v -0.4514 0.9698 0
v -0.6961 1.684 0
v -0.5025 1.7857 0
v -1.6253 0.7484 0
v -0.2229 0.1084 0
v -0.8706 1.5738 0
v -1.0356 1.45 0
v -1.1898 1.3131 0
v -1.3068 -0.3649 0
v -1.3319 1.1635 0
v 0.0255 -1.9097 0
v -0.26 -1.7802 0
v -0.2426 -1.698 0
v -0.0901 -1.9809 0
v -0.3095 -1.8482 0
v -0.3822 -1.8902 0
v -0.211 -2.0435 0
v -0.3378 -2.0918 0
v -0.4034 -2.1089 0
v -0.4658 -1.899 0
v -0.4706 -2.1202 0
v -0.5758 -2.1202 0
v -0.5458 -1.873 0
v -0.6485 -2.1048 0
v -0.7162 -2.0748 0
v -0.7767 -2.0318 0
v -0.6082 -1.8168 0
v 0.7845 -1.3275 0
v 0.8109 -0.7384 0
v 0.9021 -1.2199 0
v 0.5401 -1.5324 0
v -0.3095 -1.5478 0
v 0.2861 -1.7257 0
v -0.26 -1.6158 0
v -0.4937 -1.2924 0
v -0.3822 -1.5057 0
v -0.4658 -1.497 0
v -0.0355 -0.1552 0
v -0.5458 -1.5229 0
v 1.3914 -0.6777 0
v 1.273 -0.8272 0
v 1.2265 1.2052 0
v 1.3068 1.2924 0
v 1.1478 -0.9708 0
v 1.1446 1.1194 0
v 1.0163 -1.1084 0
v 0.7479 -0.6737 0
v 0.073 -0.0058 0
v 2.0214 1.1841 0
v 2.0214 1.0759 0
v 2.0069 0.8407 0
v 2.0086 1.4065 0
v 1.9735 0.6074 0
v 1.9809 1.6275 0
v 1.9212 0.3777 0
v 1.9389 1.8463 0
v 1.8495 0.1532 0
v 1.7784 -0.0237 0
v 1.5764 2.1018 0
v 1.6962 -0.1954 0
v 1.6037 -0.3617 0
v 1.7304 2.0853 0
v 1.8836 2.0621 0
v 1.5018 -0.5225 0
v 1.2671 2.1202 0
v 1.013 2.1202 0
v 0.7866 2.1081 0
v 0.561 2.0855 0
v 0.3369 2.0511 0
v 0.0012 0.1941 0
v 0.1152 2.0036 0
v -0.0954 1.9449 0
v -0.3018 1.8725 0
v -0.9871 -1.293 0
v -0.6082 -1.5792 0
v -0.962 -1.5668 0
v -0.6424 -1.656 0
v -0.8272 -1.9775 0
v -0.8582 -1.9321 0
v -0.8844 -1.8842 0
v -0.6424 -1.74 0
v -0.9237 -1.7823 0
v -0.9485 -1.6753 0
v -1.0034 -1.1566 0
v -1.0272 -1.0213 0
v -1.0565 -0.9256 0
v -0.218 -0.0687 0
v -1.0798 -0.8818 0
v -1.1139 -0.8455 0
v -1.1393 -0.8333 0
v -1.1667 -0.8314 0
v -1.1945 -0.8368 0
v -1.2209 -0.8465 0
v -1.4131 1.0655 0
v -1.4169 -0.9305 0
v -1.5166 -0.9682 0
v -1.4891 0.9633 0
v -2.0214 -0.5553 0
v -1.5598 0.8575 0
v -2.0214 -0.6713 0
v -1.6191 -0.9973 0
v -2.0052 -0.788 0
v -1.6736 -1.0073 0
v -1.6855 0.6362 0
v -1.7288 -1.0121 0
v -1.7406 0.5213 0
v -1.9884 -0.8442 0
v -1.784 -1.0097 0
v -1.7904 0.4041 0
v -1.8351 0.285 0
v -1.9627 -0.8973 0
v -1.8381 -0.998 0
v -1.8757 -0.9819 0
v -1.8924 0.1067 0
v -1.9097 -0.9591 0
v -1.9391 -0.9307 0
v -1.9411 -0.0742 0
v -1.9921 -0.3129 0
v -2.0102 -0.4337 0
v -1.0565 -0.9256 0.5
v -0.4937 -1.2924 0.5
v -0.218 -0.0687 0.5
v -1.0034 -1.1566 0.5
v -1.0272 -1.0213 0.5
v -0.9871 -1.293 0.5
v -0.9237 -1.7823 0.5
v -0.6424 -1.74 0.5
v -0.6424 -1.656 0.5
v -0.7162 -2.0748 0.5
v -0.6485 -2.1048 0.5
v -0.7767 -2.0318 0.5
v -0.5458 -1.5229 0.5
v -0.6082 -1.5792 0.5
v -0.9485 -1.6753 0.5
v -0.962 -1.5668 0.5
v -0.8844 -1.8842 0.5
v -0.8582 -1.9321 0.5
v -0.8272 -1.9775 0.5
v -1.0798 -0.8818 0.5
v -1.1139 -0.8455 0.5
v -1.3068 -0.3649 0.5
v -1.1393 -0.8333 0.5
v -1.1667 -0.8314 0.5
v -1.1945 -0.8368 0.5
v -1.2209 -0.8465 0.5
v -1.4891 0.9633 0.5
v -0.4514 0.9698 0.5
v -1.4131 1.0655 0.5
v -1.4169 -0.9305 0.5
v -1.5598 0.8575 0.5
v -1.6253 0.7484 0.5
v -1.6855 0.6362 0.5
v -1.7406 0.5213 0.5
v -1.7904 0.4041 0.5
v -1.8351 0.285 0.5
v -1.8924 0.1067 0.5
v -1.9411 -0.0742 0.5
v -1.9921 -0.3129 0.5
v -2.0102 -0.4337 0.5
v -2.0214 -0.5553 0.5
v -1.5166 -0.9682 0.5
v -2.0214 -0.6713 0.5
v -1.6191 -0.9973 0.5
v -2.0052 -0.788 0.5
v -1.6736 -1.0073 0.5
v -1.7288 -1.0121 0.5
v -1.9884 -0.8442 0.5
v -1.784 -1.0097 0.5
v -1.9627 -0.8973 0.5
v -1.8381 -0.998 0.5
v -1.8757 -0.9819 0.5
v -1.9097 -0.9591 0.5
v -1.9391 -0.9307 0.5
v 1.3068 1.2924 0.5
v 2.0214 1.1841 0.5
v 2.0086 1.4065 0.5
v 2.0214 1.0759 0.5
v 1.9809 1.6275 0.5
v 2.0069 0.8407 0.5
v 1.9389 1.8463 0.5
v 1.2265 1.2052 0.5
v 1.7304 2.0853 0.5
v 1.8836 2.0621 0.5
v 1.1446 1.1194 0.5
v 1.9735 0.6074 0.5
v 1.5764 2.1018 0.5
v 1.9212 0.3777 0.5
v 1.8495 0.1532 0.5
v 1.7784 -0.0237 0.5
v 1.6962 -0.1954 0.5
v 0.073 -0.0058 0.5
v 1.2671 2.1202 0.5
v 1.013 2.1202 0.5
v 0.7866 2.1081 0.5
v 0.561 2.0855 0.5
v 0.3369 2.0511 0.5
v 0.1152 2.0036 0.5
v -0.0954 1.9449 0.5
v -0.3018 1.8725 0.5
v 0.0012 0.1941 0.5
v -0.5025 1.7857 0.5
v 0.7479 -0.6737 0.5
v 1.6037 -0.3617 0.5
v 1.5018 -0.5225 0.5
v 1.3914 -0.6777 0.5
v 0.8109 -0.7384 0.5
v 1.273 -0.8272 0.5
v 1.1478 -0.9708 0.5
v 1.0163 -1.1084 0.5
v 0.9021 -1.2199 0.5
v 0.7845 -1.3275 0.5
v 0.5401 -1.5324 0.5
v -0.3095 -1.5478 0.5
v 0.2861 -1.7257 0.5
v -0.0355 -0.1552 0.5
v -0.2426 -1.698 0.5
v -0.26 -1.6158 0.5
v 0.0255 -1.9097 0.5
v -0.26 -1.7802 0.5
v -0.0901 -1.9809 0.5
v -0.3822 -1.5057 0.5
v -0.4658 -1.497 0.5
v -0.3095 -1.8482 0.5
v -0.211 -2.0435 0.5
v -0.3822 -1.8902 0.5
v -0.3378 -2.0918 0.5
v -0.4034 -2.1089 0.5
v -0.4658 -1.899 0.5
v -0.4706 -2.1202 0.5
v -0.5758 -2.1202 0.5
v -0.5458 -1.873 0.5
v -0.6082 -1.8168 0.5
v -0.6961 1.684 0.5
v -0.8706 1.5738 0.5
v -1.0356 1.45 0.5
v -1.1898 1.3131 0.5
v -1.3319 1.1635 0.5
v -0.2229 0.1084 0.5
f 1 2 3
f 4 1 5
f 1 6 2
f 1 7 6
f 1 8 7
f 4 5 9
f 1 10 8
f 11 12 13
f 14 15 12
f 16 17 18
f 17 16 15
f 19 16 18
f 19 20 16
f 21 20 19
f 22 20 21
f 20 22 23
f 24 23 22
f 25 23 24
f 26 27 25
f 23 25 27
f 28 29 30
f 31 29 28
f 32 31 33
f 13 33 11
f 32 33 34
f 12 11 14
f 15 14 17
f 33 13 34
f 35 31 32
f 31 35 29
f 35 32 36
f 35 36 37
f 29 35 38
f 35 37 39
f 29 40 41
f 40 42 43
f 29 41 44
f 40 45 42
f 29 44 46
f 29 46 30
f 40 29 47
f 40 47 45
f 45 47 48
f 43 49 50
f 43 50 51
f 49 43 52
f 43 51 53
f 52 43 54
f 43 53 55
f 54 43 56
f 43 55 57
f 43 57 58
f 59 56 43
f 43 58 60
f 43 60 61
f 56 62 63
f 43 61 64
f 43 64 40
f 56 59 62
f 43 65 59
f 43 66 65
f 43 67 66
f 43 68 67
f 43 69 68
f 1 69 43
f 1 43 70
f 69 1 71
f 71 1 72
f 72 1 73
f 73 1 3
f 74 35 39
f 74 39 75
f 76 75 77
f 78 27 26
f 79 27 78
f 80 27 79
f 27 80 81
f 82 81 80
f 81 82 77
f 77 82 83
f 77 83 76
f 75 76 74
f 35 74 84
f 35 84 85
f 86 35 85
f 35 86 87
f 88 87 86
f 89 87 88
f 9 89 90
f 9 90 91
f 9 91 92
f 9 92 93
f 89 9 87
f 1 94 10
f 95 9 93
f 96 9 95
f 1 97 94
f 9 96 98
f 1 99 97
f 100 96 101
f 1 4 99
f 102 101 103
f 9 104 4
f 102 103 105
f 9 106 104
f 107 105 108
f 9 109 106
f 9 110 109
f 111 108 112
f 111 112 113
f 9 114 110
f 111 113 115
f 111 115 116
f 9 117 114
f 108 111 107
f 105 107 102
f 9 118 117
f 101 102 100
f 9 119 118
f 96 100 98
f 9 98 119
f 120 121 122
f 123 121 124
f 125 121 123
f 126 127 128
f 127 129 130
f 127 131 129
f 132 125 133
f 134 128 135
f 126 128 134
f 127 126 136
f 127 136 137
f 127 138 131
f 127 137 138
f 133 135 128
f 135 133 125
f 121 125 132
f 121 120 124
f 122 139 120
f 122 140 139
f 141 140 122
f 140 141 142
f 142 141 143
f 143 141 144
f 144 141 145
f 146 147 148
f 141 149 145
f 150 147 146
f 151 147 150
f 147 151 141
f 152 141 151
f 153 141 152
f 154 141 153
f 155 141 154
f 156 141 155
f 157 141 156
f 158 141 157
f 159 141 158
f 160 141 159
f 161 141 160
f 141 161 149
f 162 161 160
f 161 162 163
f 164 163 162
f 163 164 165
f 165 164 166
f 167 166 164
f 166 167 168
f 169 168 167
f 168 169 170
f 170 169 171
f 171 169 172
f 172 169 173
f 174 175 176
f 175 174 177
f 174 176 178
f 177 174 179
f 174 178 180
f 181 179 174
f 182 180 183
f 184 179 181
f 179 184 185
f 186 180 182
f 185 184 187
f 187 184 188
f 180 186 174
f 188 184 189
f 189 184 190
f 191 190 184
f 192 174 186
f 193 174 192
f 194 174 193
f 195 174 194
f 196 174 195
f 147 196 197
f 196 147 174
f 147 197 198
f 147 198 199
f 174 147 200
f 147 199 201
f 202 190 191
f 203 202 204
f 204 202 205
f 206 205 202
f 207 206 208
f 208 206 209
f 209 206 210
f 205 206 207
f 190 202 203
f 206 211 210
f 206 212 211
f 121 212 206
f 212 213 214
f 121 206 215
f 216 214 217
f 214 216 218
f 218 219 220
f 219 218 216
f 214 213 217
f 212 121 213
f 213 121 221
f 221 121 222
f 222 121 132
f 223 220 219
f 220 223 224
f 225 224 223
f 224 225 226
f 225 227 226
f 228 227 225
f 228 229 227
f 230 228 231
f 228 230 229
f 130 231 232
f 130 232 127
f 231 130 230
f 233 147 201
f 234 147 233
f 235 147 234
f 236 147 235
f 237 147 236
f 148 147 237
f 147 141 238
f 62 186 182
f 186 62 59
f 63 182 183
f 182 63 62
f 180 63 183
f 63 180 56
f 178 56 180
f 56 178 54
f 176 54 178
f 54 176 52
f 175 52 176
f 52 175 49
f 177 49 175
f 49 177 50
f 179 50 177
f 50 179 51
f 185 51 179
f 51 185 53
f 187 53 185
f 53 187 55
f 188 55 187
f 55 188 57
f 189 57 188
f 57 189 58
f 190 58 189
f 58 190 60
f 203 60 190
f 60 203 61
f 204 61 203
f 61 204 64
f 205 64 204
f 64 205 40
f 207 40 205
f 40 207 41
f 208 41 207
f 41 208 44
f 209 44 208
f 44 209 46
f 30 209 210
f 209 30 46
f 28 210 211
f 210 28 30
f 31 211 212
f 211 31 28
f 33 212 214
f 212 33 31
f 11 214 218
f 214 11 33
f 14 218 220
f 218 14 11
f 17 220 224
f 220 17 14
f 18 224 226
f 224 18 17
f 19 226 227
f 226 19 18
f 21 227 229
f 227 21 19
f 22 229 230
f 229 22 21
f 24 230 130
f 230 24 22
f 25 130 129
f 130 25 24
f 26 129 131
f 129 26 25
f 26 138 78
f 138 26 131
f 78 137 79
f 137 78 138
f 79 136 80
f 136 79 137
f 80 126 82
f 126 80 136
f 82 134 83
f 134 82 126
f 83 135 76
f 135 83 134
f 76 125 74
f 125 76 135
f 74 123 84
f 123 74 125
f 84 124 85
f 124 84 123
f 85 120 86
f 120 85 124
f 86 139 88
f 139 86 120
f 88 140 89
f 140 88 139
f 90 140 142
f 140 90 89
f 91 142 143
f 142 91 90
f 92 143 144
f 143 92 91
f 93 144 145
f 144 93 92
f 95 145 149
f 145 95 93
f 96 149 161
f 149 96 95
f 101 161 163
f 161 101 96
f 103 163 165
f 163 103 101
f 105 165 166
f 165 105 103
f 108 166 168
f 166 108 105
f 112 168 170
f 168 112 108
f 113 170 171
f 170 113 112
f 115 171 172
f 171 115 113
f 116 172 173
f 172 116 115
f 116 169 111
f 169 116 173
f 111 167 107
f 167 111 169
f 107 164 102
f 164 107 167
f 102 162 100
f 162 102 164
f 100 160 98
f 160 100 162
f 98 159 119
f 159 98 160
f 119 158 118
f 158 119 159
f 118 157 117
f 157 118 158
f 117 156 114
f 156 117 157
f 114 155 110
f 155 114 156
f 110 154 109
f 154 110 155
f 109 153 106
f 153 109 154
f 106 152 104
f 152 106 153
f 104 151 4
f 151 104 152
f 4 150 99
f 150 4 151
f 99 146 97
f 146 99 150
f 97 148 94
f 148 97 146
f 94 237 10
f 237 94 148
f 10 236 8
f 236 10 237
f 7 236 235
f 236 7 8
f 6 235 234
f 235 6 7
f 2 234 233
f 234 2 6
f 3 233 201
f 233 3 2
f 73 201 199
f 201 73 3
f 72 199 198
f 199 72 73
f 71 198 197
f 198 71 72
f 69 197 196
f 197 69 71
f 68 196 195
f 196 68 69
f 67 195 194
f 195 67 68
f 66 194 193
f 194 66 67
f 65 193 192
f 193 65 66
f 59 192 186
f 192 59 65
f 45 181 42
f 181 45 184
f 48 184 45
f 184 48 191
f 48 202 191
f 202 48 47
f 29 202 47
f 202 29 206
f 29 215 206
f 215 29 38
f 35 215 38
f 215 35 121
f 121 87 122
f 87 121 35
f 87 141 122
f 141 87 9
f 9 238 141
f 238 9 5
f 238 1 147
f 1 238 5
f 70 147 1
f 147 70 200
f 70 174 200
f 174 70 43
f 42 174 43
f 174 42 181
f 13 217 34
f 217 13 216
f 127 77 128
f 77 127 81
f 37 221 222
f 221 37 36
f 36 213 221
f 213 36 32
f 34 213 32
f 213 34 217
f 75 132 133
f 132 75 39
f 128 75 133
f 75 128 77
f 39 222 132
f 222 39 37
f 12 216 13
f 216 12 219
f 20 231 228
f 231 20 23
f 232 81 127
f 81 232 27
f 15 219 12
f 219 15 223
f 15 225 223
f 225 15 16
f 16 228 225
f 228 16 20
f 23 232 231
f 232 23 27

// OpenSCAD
// Module names are of the form poly_<inkscape-path-id>().  As a result,
// you can associate a polygon in this OpenSCAD program with the corresponding
// SVG element in the Inkscape document by looking for the XML element with
// the attribute id="inkscape-path-id".

// fudge value is used to ensure that subtracted solids are a tad taller
// in the z dimension than the polygon being subtracted from.  This helps
// keep the resulting .stl file manifold.
fudge = 0.1;

 
module innerLeaf(h)
{
  scale([25.4/90, -25.4/90, 1]) union()
  {
    linear_extrude(height=h)
      polygon([[0.165000,-27.510000],[185.215000,-183.170000],[173.836250,-170.817500],[162.225000,-158.660000],[10.345000,0.820000],[106.005000,95.490000],[114.935000,104.650000],[-5.035000,22.000000],[-69.975000,183.170000],[-30.895000,9.730000],[-185.215000,51.720000],[-31.595000,-15.360000],[-63.985000,-137.450000],[0.165000,-27.510000]]);
  }
}


module outterLeaf(h)
{
  scale([25.4/90, -25.4/90, 1]) union()
  {
    linear_extrude(height=h)
      polygon([[143.580000,-300.500000],[179.590000,-300.500000],[223.430000,-297.888750],[245.259063,-295.548594],[266.970000,-292.270000],[274.807031,-261.678750],[280.751250,-230.667500],[284.687344,-199.345000],[286.500000,-167.820000],[286.500000,-152.490000],[284.438750,-119.152031],[279.715000,-86.088750],[272.291250,-53.533594],[262.130000,-21.720000],[252.051504,3.355098],[240.403281,27.688281],[227.301230,51.261387],[212.861250,74.056250],[197.199238,96.054707],[180.431094,117.238594],[162.672715,137.589746],[144.040000,157.090000],[127.859473,172.893242],[111.182656,188.149688],[76.548750,217.197500],[40.555469,244.584063],[3.620000,270.660000],[-12.767500,280.757656],[-29.912500,289.633750],[-47.871250,296.482969],[-57.173359,298.895840],[-66.700000,300.500000],[-81.610000,300.500000],[-91.906406,298.310781],[-101.513750,294.063750],[-110.076719,287.977344],[-117.240000,280.270000],[-121.637676,273.841543],[-125.344531,267.047344],[-130.918750,252.608750],[-134.428594,237.448281],[-136.340000,222.060000],[-139.910000,183.266250],[-142.218125,163.932656],[-145.580000,144.750000],[-149.737500,131.181250],[-153.047188,124.976719],[-157.870000,119.840000],[-161.472188,118.111094],[-165.365000,117.836250],[-169.302813,118.598281],[-173.040000,119.980000],[-200.825000,131.883750],[-214.943438,137.227656],[-229.480000,141.350000],[-237.195938,142.770469],[-245.030000,143.451250],[-252.849063,143.106406],[-260.520000,141.450000],[-265.850000,139.161094],[-270.670000,135.941250],[-274.830000,131.905781],[-278.180000,127.170000],[-281.814375,119.656563],[-284.207500,111.680000],[-286.500000,95.140000],[-286.500000,78.710000],[-284.908906,61.469687],[-282.351250,44.355000],[-275.120000,10.510000],[-268.216250,-15.120000],[-260.090000,-40.390000],[-253.758574,-57.279395],[-246.694844,-73.887656],[-238.895879,-90.166152],[-230.358750,-106.066250],[-221.080527,-121.539316],[-211.058281,-136.536719],[-200.289082,-151.009824],[-188.770000,-164.910000],[-168.639219,-186.110000],[-146.778750,-205.517500],[-123.386406,-223.061250],[-98.660000,-238.670000],[-71.227344,-253.097188],[-42.781250,-265.392500],[-13.527031,-275.651563],[16.330000,-283.970000],[47.751094,-290.709687],[79.508750,-295.587500],[111.489531,-298.789062],[143.580000,-300.500000]]);
  }
}


module fullLeaf(h){
    render(convexity = 2){
        difference(){
            outterLeaf(h);
            innerLeaf(h);
            //resize([1,0,0], auto=true) outterLeaf(3);
            //resize([1,0,0], auto=true) innerLeaf(3);


           
            
        }

    }
}
module leafHole(){
difference(){
    resize([5,0,0], auto=true) fullLeaf(20);


    translate([-.55,-2.1,0]){
        cylinder($fn=15 ,h=1, r1=.25, r2=.25, center=false);
    }
}
}

resize([0,0,.5], auto=true) leafHole();
